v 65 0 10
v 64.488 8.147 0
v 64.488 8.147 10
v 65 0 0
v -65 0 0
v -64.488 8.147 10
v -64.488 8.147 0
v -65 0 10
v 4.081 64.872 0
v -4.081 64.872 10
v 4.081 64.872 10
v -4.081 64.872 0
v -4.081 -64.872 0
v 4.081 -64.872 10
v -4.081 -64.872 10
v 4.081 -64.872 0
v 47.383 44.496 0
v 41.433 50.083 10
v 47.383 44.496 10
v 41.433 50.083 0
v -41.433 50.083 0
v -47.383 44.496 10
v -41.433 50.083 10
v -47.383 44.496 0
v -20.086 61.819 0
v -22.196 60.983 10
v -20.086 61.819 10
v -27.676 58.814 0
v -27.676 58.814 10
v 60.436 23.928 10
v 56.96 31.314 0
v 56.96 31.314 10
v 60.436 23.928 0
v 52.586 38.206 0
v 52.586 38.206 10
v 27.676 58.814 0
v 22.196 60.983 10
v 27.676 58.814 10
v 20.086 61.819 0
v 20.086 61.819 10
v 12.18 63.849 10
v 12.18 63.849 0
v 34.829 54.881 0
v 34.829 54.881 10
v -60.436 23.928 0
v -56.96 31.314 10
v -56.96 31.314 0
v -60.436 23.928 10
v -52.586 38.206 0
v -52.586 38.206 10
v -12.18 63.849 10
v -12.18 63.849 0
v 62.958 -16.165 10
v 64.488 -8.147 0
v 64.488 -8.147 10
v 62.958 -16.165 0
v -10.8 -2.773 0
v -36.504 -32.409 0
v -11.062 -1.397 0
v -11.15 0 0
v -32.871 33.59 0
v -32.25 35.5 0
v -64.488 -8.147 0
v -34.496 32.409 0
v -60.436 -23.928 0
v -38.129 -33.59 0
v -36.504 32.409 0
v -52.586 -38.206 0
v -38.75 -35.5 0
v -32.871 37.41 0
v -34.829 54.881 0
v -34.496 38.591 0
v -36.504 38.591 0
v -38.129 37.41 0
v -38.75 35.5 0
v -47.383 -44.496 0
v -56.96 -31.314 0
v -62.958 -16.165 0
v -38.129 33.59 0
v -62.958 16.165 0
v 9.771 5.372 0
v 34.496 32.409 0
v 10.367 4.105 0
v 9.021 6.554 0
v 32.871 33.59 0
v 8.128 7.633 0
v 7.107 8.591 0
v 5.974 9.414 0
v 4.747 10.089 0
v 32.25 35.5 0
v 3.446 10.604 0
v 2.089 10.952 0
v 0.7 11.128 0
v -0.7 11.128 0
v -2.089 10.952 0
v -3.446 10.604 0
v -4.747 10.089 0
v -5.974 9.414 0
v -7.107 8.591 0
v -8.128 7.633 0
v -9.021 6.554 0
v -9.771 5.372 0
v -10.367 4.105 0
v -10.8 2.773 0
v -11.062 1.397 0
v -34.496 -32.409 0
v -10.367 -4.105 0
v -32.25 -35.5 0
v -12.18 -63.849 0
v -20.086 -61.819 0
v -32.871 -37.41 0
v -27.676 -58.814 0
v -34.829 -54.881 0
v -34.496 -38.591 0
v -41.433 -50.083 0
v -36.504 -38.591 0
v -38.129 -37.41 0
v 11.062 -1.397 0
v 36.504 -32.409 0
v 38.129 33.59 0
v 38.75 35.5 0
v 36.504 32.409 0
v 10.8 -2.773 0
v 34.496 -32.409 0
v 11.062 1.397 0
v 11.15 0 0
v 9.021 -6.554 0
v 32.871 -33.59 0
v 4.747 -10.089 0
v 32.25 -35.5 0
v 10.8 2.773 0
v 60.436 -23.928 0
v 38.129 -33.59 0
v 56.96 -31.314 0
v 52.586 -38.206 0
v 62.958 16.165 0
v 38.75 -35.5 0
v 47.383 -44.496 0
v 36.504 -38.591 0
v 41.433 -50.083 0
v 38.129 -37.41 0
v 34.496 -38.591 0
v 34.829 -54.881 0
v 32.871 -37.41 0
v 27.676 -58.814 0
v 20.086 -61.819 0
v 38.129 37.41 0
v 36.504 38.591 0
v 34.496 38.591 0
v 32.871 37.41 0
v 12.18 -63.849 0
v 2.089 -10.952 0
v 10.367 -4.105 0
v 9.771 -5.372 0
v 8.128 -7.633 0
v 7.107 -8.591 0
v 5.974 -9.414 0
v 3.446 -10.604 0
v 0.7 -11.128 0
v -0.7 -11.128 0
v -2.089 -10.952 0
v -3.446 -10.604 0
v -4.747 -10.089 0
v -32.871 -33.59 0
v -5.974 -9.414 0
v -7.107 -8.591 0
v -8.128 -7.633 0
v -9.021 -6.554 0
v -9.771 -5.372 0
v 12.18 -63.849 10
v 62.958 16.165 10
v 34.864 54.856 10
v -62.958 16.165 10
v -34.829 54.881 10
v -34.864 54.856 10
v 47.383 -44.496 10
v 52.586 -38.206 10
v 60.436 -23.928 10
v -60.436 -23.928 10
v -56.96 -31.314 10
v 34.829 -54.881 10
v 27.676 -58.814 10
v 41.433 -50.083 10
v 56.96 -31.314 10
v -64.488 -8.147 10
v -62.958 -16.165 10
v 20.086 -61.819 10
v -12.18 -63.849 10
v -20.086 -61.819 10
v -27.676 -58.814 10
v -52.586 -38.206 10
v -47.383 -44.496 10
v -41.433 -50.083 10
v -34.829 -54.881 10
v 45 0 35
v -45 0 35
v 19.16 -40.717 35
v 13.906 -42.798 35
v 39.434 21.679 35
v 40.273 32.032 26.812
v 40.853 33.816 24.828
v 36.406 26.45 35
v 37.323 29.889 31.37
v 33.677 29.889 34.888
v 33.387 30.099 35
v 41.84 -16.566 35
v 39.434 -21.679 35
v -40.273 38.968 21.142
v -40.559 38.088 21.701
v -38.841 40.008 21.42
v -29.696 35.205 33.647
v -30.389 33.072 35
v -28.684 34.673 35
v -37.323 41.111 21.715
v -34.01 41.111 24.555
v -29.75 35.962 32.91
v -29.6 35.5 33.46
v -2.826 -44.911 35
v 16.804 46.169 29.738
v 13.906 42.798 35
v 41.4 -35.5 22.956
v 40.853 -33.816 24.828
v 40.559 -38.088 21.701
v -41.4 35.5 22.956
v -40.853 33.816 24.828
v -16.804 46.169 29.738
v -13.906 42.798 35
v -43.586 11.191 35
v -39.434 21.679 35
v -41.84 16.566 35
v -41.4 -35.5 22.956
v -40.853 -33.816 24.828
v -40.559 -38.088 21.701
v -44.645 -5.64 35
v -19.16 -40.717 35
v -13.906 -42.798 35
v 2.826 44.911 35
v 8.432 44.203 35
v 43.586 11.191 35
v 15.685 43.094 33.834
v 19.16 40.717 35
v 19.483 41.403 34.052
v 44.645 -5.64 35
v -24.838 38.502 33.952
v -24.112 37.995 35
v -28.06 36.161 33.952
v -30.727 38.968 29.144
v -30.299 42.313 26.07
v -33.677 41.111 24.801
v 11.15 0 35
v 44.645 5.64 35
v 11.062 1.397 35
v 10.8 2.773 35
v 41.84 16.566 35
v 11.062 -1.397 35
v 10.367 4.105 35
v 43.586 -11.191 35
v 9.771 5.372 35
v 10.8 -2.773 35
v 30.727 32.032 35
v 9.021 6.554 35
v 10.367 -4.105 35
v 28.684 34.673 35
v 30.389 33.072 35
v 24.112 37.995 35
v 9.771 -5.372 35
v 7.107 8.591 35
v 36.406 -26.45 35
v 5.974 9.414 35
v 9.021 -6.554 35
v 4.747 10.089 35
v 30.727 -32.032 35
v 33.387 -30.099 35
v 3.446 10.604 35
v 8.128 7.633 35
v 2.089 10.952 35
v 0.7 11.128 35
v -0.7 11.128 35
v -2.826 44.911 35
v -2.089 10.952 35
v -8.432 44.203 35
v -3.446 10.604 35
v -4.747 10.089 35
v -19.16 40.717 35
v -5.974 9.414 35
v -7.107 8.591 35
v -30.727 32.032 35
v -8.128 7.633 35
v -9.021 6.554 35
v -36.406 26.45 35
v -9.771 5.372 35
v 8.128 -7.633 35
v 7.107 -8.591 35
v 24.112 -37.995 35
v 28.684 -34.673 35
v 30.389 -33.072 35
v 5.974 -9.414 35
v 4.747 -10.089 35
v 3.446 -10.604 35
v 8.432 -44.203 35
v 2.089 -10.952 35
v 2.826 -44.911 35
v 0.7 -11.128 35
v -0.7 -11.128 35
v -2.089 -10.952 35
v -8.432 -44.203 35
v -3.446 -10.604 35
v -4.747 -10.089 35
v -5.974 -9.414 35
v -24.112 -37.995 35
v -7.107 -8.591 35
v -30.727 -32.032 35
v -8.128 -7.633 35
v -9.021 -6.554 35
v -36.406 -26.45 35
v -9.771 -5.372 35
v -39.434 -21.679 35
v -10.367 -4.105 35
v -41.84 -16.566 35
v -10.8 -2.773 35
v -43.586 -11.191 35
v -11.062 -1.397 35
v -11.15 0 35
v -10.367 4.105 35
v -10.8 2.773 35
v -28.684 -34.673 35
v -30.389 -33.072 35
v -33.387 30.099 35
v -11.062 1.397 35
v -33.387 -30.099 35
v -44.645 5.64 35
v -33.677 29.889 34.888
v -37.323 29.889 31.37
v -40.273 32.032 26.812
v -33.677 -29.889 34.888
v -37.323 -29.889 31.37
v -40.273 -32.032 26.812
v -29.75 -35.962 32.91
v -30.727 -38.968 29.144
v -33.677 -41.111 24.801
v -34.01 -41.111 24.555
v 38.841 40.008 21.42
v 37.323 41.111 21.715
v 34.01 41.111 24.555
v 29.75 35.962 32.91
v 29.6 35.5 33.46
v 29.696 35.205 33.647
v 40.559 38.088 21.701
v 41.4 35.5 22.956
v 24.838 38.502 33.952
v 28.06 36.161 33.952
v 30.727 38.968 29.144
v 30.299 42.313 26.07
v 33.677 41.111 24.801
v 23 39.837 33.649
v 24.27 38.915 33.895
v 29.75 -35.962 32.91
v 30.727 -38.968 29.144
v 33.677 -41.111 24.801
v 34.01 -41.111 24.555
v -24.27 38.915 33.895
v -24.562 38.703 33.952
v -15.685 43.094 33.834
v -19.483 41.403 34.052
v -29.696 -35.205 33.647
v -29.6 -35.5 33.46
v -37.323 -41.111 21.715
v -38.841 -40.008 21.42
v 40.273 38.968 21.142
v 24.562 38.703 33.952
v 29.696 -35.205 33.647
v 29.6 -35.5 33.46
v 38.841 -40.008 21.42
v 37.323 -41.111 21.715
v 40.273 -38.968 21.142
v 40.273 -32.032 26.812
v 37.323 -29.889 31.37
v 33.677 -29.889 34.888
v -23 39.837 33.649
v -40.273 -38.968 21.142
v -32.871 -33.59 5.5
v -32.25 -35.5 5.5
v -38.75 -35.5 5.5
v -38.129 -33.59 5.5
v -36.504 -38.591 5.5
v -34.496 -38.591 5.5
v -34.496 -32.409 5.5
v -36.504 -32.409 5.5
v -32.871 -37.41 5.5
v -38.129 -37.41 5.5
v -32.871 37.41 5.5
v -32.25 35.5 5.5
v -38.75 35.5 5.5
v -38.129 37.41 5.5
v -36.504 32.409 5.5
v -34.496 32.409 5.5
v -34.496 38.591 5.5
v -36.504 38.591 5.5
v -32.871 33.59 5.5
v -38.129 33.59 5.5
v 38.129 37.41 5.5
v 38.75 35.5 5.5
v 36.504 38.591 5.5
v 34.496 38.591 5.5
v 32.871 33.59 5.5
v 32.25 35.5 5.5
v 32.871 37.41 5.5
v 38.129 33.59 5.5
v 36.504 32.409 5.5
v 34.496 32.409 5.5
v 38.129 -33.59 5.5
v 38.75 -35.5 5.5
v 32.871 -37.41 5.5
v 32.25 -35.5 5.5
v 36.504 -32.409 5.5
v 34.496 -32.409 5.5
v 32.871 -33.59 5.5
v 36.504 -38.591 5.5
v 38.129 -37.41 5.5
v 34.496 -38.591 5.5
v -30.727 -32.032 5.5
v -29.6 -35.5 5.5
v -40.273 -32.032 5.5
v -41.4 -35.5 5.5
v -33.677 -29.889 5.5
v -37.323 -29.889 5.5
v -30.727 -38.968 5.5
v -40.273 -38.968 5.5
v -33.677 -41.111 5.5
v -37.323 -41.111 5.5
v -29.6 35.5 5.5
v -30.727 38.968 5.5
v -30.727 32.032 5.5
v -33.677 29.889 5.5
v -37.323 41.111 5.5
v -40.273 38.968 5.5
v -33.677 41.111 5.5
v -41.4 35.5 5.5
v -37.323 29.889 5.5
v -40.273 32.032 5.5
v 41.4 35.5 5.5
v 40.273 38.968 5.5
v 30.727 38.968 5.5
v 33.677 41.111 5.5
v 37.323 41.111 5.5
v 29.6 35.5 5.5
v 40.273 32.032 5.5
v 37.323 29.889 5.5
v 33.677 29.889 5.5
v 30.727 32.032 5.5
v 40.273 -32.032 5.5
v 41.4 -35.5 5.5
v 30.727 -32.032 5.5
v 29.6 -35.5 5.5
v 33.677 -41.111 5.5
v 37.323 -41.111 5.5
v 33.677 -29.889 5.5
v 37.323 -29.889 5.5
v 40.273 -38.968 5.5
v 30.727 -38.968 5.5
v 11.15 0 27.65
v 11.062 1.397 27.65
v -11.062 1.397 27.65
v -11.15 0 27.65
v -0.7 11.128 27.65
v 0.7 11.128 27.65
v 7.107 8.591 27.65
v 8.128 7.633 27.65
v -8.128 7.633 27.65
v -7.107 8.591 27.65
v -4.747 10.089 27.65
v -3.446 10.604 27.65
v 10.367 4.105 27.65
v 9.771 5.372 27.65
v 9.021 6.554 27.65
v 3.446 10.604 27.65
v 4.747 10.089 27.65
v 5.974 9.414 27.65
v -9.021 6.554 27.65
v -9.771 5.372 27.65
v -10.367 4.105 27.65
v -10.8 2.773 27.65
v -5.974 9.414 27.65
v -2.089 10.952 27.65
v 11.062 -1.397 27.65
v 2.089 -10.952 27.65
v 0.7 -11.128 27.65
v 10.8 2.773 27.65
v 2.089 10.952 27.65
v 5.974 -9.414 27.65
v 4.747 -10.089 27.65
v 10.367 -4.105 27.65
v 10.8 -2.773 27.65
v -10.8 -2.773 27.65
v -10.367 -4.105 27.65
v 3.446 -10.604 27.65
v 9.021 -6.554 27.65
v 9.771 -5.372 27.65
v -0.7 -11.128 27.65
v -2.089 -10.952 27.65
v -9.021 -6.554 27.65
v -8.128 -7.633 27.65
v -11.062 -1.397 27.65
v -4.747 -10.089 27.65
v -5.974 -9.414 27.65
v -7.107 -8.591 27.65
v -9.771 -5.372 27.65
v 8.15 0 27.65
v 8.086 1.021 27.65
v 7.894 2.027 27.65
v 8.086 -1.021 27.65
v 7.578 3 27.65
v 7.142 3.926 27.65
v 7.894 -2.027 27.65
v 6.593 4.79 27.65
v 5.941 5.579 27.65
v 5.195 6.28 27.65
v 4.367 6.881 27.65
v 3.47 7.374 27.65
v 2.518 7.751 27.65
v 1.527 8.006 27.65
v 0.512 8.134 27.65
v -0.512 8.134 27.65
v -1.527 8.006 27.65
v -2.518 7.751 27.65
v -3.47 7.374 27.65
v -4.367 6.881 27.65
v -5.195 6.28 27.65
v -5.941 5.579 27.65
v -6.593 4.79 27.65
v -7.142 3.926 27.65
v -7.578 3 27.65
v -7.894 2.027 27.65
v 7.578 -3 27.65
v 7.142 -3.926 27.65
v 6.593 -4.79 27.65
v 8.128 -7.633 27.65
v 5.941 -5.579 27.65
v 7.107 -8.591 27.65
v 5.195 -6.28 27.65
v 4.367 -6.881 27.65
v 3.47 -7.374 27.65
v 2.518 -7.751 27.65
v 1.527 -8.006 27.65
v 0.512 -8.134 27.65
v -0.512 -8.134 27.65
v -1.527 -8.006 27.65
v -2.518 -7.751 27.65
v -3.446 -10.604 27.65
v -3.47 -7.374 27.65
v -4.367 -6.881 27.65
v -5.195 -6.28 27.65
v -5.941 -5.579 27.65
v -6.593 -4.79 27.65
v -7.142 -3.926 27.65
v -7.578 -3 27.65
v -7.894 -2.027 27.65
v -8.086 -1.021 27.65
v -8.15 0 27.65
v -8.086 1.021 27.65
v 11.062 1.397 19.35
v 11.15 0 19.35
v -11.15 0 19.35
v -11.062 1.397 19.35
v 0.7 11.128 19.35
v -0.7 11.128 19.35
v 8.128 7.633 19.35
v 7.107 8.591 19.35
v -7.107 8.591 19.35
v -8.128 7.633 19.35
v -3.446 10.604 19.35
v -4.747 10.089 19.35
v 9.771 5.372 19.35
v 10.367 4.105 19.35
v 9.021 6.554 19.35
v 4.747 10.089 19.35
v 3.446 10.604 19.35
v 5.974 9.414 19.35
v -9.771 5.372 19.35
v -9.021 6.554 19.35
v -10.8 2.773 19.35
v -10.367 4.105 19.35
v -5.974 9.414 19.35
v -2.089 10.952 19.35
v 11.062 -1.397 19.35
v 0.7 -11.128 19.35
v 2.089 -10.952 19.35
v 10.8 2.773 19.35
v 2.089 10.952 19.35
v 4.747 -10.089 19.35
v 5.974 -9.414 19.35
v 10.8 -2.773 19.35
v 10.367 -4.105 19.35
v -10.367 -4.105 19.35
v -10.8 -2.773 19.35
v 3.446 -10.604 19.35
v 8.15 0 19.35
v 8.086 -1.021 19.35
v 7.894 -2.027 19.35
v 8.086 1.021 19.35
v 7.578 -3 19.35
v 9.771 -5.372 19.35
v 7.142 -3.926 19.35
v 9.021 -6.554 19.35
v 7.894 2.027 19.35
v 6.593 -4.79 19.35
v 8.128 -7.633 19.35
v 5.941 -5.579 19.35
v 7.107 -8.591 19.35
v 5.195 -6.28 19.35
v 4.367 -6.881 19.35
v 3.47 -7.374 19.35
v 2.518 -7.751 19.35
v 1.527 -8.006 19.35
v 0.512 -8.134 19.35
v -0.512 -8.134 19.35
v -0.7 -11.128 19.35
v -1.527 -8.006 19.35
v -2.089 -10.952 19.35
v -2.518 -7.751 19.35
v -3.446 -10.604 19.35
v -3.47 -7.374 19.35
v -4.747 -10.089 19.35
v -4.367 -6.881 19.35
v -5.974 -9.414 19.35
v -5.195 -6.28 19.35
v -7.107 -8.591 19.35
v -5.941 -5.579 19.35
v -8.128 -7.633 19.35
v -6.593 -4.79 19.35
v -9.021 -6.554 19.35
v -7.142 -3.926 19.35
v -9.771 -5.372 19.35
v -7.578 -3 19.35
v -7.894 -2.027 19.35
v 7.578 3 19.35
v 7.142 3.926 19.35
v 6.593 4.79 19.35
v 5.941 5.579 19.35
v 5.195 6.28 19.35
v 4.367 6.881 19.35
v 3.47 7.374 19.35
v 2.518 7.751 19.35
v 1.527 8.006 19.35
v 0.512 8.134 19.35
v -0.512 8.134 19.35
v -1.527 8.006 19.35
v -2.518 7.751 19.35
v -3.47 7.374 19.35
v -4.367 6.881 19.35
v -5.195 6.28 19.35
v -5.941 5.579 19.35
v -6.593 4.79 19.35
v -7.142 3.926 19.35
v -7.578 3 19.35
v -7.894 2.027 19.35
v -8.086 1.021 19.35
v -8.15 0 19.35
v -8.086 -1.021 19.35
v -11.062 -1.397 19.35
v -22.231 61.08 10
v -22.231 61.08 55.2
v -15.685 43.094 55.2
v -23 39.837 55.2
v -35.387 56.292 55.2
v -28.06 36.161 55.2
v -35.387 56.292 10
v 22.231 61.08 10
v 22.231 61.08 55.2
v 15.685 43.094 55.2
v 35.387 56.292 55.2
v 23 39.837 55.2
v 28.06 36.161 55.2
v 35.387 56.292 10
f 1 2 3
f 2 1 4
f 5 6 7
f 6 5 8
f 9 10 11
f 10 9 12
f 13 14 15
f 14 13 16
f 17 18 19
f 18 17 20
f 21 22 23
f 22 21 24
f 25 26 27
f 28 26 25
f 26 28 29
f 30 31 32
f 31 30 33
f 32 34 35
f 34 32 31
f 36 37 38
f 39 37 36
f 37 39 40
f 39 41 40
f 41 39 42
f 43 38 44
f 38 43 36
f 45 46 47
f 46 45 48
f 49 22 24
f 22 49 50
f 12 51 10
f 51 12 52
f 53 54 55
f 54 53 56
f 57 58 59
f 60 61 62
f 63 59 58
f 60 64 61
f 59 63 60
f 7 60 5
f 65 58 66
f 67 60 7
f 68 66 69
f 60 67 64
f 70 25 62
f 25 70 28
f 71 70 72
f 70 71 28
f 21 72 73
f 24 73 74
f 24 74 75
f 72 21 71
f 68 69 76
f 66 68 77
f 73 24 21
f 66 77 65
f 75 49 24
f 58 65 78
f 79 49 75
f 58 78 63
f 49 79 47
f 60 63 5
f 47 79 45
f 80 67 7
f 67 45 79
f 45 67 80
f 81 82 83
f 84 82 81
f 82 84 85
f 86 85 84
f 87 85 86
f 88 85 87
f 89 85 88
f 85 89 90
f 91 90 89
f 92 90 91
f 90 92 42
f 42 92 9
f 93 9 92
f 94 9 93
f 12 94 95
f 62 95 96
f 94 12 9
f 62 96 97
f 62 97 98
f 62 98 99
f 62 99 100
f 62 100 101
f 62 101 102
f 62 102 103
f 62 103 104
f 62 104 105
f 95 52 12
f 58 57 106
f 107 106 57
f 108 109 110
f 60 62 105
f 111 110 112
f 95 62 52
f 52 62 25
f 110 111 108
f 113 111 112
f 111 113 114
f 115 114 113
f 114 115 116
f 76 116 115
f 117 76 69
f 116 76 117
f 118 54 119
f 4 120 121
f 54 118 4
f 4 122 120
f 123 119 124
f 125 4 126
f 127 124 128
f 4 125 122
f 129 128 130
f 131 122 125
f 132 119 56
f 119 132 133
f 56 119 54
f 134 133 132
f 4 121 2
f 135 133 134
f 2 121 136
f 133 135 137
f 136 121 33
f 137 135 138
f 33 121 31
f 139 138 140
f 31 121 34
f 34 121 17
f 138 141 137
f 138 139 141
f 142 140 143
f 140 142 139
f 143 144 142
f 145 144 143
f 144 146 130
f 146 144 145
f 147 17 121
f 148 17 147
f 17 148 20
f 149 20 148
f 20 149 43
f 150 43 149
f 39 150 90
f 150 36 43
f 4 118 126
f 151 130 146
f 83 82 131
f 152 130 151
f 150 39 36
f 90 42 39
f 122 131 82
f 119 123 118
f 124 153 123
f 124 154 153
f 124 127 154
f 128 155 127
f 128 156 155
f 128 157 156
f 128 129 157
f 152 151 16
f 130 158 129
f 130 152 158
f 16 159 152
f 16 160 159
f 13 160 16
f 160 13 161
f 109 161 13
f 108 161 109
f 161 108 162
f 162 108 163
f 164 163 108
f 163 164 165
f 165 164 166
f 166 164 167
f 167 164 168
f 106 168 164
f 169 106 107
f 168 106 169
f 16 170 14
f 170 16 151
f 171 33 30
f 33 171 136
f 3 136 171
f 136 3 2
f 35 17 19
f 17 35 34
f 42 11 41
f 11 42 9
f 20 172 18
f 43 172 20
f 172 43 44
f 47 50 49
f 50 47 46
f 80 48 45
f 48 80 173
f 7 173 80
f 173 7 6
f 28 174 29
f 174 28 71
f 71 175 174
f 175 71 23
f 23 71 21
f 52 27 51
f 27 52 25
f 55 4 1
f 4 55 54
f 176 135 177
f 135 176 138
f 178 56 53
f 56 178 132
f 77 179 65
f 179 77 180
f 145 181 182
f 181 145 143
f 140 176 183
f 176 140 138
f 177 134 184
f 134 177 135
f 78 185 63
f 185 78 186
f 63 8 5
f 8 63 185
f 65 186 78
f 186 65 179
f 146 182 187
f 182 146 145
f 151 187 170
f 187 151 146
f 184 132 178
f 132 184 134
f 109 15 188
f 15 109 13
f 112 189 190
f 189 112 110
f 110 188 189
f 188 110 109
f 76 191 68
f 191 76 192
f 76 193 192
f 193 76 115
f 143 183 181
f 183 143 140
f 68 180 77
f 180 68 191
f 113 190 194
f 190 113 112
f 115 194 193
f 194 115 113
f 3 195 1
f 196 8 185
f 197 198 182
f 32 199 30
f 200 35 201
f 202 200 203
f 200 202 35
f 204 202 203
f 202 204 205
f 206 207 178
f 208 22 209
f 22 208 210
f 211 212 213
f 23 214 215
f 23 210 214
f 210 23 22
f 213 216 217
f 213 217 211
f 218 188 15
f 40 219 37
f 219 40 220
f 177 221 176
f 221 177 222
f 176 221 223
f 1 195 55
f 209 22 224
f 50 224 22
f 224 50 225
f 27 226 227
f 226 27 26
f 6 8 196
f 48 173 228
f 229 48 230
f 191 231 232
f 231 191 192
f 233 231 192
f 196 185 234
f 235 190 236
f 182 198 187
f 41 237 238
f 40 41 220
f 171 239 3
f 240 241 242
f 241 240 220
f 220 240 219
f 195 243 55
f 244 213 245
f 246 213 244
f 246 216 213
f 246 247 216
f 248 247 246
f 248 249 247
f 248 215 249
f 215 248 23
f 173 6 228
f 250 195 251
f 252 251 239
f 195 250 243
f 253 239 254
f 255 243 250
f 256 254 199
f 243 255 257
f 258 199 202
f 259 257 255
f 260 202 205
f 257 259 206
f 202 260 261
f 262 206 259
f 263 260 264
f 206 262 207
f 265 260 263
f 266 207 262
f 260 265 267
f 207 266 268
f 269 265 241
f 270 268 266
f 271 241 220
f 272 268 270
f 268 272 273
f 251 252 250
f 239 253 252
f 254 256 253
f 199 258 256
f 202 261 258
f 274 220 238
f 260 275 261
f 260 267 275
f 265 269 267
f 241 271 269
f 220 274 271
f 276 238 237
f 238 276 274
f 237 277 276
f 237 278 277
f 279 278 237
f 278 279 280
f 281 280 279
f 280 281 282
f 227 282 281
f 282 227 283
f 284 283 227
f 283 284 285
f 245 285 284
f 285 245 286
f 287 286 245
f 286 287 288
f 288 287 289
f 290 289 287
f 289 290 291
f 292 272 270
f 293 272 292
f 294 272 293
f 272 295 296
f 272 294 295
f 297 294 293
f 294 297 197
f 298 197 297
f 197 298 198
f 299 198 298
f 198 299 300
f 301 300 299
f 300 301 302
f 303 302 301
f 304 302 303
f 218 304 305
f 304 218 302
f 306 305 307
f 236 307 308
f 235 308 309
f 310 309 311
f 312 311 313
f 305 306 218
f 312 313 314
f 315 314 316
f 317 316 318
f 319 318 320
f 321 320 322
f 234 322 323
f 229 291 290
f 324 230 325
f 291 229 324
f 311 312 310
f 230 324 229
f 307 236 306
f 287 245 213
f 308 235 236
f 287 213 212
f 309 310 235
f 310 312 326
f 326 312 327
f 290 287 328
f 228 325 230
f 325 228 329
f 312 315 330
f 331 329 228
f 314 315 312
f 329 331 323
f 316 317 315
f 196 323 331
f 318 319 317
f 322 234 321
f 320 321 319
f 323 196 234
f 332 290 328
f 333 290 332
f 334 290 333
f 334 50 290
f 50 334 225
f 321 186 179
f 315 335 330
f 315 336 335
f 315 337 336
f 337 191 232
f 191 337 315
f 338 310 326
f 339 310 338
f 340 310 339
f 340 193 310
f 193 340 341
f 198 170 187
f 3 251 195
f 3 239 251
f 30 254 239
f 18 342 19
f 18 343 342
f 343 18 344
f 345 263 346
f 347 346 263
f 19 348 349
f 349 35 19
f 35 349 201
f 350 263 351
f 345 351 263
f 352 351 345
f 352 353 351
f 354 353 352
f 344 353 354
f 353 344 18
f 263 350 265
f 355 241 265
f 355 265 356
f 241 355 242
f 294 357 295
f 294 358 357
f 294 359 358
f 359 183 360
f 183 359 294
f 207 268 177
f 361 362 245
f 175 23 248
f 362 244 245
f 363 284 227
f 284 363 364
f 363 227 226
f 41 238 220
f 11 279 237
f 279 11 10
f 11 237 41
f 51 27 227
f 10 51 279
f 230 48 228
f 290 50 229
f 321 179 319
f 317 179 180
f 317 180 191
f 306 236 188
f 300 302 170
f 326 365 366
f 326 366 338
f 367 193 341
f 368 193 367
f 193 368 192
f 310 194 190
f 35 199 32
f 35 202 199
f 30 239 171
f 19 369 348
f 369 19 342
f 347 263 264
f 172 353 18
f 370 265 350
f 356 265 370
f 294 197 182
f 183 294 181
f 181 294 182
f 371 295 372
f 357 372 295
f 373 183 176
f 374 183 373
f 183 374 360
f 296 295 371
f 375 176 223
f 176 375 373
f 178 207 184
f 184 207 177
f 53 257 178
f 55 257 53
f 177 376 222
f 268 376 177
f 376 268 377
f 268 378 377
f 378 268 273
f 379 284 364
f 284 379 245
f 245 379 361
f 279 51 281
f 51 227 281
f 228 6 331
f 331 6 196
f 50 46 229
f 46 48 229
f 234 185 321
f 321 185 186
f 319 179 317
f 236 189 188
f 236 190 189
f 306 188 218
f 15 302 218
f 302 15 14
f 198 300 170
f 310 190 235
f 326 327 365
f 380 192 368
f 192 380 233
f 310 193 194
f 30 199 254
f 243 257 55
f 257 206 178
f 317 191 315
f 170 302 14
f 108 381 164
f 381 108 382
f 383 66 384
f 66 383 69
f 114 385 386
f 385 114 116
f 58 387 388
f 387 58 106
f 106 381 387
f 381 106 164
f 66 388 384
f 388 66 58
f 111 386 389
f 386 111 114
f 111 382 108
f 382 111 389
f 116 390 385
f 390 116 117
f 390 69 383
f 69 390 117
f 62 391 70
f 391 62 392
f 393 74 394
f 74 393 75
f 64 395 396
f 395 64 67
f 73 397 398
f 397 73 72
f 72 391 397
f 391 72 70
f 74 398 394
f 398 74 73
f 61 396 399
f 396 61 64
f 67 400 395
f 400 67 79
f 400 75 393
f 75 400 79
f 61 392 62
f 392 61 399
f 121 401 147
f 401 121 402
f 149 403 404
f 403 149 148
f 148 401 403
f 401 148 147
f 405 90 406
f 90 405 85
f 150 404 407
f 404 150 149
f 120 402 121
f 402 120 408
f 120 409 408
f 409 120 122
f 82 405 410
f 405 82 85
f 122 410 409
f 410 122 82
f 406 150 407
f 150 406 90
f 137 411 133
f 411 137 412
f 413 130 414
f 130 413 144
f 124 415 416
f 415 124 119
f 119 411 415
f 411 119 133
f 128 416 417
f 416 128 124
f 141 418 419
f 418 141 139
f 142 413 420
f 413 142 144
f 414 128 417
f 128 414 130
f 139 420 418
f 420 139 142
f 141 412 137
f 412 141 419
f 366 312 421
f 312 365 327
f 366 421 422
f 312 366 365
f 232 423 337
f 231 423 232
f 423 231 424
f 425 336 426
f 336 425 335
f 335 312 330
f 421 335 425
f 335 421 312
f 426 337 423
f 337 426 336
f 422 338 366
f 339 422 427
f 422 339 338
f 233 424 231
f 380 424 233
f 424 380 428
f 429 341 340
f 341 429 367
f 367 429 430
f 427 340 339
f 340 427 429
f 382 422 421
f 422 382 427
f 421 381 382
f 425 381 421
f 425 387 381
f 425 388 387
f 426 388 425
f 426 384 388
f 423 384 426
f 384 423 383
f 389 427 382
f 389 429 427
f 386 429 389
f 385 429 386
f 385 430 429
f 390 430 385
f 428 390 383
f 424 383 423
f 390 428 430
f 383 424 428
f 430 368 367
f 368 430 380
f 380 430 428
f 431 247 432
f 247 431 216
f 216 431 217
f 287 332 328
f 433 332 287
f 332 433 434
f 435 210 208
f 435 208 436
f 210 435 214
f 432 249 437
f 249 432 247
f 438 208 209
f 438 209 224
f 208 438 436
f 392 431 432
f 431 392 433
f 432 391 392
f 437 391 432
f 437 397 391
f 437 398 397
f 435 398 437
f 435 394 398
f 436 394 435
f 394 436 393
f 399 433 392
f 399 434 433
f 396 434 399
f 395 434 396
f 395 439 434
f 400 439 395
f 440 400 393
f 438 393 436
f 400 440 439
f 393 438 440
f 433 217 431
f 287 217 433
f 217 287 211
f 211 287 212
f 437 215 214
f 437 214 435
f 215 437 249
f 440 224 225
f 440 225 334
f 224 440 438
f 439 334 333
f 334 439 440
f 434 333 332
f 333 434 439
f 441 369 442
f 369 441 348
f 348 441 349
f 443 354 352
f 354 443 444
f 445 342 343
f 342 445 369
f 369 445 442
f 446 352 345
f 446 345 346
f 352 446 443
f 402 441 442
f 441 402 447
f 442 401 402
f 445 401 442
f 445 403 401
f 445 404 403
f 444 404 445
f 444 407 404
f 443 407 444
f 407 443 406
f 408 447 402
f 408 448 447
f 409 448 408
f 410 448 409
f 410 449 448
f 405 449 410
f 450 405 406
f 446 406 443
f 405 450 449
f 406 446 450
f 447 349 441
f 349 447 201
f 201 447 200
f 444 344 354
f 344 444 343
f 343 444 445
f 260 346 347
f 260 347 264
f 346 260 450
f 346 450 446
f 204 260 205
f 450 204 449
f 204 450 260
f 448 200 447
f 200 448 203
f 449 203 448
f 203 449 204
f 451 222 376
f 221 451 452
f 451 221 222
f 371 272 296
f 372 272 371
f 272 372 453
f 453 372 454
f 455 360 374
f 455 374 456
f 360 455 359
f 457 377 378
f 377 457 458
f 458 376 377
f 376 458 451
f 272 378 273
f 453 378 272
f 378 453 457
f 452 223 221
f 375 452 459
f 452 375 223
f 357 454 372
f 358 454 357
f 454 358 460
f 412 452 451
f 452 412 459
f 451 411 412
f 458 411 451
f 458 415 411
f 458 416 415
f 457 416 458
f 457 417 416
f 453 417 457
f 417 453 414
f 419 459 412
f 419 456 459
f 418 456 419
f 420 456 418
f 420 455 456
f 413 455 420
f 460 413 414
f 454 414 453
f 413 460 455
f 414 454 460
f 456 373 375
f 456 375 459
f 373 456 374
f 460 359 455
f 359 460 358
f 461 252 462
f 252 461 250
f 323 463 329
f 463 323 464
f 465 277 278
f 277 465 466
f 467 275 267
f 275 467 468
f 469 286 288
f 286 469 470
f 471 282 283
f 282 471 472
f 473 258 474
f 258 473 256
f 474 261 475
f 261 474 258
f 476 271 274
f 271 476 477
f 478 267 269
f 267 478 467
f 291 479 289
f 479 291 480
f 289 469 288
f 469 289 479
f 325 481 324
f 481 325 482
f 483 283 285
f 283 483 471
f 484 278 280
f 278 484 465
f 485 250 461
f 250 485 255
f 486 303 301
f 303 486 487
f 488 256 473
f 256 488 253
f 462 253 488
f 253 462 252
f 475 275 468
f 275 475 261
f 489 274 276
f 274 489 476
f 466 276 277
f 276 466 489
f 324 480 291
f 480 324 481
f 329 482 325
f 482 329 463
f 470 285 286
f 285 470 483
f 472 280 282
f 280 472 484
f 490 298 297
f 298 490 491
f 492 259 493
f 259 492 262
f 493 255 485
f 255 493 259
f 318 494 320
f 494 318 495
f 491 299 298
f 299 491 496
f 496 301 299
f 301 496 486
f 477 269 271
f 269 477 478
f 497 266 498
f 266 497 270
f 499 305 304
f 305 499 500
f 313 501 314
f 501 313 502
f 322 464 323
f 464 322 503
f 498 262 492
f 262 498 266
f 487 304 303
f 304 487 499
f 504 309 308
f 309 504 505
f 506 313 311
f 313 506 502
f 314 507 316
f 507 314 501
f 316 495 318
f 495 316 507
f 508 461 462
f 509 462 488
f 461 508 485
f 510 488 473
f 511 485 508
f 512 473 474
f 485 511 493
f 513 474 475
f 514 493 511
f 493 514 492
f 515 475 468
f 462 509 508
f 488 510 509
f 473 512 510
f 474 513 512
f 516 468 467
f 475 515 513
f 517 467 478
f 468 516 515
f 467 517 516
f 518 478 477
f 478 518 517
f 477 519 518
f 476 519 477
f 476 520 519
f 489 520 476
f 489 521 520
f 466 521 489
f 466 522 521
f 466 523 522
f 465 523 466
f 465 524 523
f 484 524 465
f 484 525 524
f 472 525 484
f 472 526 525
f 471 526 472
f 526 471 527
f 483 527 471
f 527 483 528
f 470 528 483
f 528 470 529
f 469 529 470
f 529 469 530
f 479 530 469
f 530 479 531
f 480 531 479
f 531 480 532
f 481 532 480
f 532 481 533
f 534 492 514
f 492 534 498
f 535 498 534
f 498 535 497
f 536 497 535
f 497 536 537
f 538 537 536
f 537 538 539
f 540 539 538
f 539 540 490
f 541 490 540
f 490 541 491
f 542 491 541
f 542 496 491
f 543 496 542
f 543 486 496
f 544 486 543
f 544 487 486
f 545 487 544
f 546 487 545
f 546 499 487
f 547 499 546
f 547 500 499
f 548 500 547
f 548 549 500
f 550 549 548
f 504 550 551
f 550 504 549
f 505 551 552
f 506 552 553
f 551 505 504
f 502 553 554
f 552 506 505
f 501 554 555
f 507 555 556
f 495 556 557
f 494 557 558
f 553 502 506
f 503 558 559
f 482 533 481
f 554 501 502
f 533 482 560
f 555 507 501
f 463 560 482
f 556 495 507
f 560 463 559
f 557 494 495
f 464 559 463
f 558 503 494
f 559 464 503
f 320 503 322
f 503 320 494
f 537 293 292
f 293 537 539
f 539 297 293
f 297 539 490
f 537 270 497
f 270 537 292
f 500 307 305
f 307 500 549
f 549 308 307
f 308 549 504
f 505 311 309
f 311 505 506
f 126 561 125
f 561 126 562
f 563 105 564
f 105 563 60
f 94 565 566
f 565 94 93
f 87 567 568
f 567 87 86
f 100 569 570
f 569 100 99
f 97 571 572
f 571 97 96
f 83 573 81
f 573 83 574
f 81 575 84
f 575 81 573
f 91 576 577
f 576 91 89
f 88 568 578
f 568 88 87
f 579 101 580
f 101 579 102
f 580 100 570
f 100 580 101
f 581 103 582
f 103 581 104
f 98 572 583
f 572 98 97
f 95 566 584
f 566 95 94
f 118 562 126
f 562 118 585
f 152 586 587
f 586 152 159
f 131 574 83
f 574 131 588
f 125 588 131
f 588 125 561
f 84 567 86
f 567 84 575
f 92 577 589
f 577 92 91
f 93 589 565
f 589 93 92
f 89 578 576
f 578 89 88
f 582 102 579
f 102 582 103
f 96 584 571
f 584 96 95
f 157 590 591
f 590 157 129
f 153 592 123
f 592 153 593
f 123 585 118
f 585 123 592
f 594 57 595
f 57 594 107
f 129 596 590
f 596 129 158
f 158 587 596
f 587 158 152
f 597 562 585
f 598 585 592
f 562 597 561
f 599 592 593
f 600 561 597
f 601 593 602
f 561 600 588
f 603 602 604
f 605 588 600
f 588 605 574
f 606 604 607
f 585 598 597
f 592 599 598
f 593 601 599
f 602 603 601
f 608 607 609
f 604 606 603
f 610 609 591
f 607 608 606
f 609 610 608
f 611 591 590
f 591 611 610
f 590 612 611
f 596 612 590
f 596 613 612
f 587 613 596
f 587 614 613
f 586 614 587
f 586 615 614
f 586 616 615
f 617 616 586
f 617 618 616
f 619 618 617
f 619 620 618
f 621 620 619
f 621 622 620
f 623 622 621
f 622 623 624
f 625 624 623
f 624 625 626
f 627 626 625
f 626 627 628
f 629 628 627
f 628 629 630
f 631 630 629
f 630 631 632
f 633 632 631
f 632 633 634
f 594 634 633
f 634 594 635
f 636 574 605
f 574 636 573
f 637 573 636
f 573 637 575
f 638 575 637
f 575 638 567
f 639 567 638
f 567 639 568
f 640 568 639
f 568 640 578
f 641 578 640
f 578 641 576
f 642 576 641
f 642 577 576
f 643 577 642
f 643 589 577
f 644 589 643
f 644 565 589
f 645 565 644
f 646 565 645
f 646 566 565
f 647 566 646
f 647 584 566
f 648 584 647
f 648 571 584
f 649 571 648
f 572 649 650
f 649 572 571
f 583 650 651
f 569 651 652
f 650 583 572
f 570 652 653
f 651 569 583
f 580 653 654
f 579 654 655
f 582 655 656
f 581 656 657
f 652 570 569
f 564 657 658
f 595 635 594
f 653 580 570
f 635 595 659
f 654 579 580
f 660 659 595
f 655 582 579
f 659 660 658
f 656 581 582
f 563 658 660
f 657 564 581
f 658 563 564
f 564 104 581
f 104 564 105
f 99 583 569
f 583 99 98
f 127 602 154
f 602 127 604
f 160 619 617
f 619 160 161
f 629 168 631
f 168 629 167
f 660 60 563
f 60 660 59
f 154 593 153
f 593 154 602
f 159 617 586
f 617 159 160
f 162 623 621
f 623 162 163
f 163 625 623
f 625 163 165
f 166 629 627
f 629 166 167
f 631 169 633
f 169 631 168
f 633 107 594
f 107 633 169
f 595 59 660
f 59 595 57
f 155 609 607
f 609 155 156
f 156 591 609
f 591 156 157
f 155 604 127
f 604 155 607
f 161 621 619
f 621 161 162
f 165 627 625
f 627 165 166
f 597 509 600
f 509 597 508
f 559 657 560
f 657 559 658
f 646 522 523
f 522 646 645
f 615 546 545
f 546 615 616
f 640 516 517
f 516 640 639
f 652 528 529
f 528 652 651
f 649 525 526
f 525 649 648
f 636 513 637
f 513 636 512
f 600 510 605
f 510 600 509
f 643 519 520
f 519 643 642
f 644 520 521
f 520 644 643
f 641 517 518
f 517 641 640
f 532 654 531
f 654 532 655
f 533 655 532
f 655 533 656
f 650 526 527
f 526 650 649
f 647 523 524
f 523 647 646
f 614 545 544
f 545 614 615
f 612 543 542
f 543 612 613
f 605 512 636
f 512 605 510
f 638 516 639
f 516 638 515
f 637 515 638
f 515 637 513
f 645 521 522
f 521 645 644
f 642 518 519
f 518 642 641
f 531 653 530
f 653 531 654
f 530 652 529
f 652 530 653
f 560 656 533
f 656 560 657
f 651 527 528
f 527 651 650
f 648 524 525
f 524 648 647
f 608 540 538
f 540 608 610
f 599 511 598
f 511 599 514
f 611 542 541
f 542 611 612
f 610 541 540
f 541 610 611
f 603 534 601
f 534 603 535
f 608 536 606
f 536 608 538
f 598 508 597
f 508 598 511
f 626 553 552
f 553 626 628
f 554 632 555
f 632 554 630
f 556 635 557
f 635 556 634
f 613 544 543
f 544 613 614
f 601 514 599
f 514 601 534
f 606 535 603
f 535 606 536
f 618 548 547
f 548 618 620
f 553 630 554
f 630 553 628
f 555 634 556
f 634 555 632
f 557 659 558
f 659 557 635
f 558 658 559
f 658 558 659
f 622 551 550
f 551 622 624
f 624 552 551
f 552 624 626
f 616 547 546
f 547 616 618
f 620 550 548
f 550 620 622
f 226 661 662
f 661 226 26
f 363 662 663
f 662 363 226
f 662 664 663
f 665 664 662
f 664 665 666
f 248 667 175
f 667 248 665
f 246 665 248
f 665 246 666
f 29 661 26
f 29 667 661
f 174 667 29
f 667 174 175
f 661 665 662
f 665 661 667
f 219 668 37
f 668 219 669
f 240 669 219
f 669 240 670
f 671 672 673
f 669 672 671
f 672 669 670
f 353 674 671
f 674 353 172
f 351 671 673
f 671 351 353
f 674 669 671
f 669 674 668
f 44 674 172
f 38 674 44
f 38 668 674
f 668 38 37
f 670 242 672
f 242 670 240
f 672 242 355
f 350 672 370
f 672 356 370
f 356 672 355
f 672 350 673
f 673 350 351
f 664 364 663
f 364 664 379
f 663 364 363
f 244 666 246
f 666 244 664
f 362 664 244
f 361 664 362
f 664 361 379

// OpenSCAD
// file: lib/naca4.scad
// Naca4.scad - library for parametric airfoils of 4 digit NACA series
// Code: Rudolf Huttary, Berlin 
// June 2015
// commercial use prohibited


// general use: for more examples refer to sampler.scad
// naca = naca digits or 3el vector  (default = 12 or [0, 0, .12])
// L    = chord length [mm]      (default= 100)
// N    = # sample points        (default= 81)
// h    = height [mm]            (default= 1)
// open = close at the thin end? (default = true)
// two equivalent example calls
 airfoil(naca = 2408, L = 60, N=1001, h = 30, open = false); 
// airfoil(naca = [.2, .4, .32], L = 60, N=1001, h = 30, open = false); 

module help()
{
  echo(str("\n\nList of signatures in lib:\n=================\n", 
  "module airfoil(naca=2412, L = 100, N = 81, h = 1, open = false) - renders airfoil object\n", 
  "module airfoil(naca=[.2, .4, .12], L = 100, N = 81, h = 1, open = false) - renders airfoil object using percentage for camber,  camber distance and thicknes\n", 
  "function airfoil_data(naca=12, L = 100, N = 81, open = false)\n",
  "=================\n")); 
}

help(); 
// this is the object
module airfoil(naca=12, L = 100, N = 81, h = 1, open = false)
{
  linear_extrude(height = h)
  polygon(points = airfoil_data(naca, L, N, open)); 
}

module hollow_airfoil(lnaca=12, L = 100, N = 81, h = 1, open = false, wall_thickness = 1)
{
    if (open){
        linear_extrude(height = h)

        if (wall_thickness>0){
            difference(){
                polygon(points = airfoil_data(naca, L, N, false));
                offset(delta = - wall_thickness, chamfer = false) polygon(points = airfoil_data(naca, L, N, open = false));
            }
        }
        else{
            difference(){
                offset(delta = - wall_thickness, chamfer = false) polygon(points = airfoil_data(naca, L, N, open = false));
                polygon(points = airfoil_data(naca, L, N, false));
            }
        }
    }
    else{

        linear_extrude(height = abs(wall_thickness))
            polygon(points = airfoil_data(naca, L, N, false)); 

        linear_extrude(height = h)
            difference(){
                polygon(points = airfoil_data(naca, L, N, open));
                offset(delta = - wall_thickness) polygon(points = airfoil_data(naca, L, N, open = false));
            }

        translate([0,0, h - wall_thickness])
            linear_extrude(height = abs(wall_thickness))
                polygon(points = airfoil_data(naca, L, N, false)); 

    }
}


// this is the main function providing the airfoil data
function airfoil_data(naca=12, L = 100, N = 81, open = false) = 
  let(Na = len(naca)!=3?NACA(naca):naca)
  let(A = [.2969, -0.126, -.3516, .2843, open?-0.1015:-0.1036])
  [for (b=[-180:360/(N):179.99]) 
    let (x = (1-cos(b))/2)  
    let(yt = sign(b)*Na[2]/.2*(A*[sqrt(x), x, x*x, x*x*x, x*x*x*x])) 
    Na[0]==0?L*[x, yt]:L*camber(x, yt, Na[0], Na[1], sign(b))];  


function trailing_edge_angle(naca=12, open = false) = 
  let(Na = len(naca)!=3?NACA(naca):naca)
  let(A = [.2969, -0.126, -.3516, .2843, open?-0.1015:-0.1036])
  let (x =0.999)  // set x near to airfoil trailing edge
  let(yt = Na[2]/.2*(A*[sqrt(x), x, x*x, x*x*x, x*x*x*x])) // calculate distance from x-axis at previously set position
  atan2(yt,1-x);  // calculate angle of triangle between end of airfoil. The triange height corresponds to previously calculated distance from x-axis

function surface_angle(x = 0.5, naca=12, open = false) = 
  let(Na = len(naca)!=3?NACA(naca):naca)
  let(A = [0.2969, -0.126, -0.3516, 0.2843, open?-0.1015:-0.1036])
  let(dy = Na[2]/0.2*(A*[(1/2)*(1/sqrt(x)), 1, 2*x, 3*x*x, 4*x*x*x])) // calculate derivative of airfoil function at the x point
  atan(dy);  // calculate  the angle from function derivative

function surface_distance(x = 0.5, naca=12, open = false) = 
  let(Na = len(naca)!=3?NACA(naca):naca)
  let(A = [0.2969, -0.126, -0.3516, 0.2843, open?-0.1015:-0.1036])
  Na[2]/.2*(A*[sqrt(x), x, x*x, x*x*x, x*x*x*x]); // calculate distance from x-axis at previously set position

// helper functions
function NACA(naca) = 
  let (M = floor(naca/1000))
  let (P = floor((naca-M*1000)/100)) 
  [M/100, P/10, floor(naca-M*1000-P*100)/100];  

function camber(x, y, M, P, upper) = 
  let(yc = (x<P)?M/P/P*(2*P*x-x*x): M/(1-P)/(1-P)*(1 - 2*P + 2*P*x -x*x))
  let(dy = (x<P)?2*M/P/P*(P-x):2*M/(1-P)/(1-P)*(P-x))
  let(th = atan(dy))
  [upper ? x - y*sin(th):x + y*sin(th), upper ? yc + y*cos(th):yc - y*cos(th)];
// main file
draft = true;


module 888_3000(draft){    /////// 1. díl (AZ, YAW)

cone_radius_one = 65;
cone_radius_two = 45;
cone_height = 25;
cylinder_height = 10;

whole_length = cone_height + cylinder_height;

//lícovaný šroub  M6
shank_diameter = 8 + 1 ;		//průměr dříku + tolerance pro díru
screw_length = 30; // délka lícovaného sroubu
whole_screw_length = screw_length + 11+6; 		//celková délka
thread_length = 11;				//délka závitu
thread_diameter = 6; 
length_screw_behind_nut = 3;
head_screw_diameter = 13 + 0.2;		//průměr válcové hlavy šroubu
head_screw_height = 8 + 0.2;		//výška válcové hlavy šroubu


//samojistná šestihranná matice ISO 7040 - M6
lock_nut_diameter = 11.05; //výška samojistné matice pro průměr M6
lock_nut_height = 8; 

//šířka žebra
rib_thickness = 7;

rotate_angle = 40;

//výška podstavy počítaná z celkové délky použitého lícovaného šroubu
height_of_base = whole_screw_length - whole_length + head_screw_height;

base_thickness = 30-18-6; // sila materialu pod srouby pro pridelani

union (){
	difference(){

		union(){
					cylinder (h = cylinder_height, r = cone_radius_one, center = false, $fn = draft ? 50 : 100);
			translate([0,0,cylinder_height])
					cylinder(h = cone_height, r1 = cone_radius_one, r2 = cone_radius_two, center=false, $fn = draft ? 50 : 100);
		}

	//šrouby pro uchycení
		translate([- cone_radius_one/2 - 3, - cone_radius_one/2 - 3,-global_clearance])	
				cylinder (h = whole_length + 2*global_clearance, r = M6_screw_diameter/2, $fn = draft ? 10 : 20);
		translate([ - cone_radius_one/2 - 3, cone_radius_one/2 + 3,-global_clearance])	
				cylinder (h = whole_length + 2*global_clearance, r = M6_screw_diameter/2, $fn = draft ? 10 : 20);
		translate([cone_radius_one/2 + 3,cone_radius_one/2 + 3,-global_clearance])	
				cylinder (h = whole_length + 2*global_clearance, r = M6_screw_diameter/2, $fn = draft ? 10 : 20);
		translate([cone_radius_one/2 + 3, - cone_radius_one/2 - 3,-global_clearance])	
				cylinder (h = whole_length +  2*global_clearance, r = M6_screw_diameter/2, $fn = draft ? 10 : 20);
        
	//šrouby pro uchycení
		translate([- cone_radius_one/2 - 3, - cone_radius_one/2 - 3,base_thickness-global_clearance])	
				cylinder (h = whole_length + 2*global_clearance, r = M6_nut_diameter/2, $fn = draft ? 10 : 20);
		translate([ - cone_radius_one/2 - 3, cone_radius_one/2 + 3, base_thickness-global_clearance])	
				cylinder (h = whole_length + 2*global_clearance, d = M6_nut_diameter, $fn = draft ? 10 : 20);
		translate([cone_radius_one/2 + 3,cone_radius_one/2 + 3, base_thickness-global_clearance])	
				cylinder (h = whole_length + 2*global_clearance, d = M6_nut_diameter, $fn = draft ? 10 : 20);
		translate([cone_radius_one/2 + 3, - cone_radius_one/2 - 3, base_thickness-global_clearance])	
				cylinder (h = whole_length +  2*global_clearance, d = M6_nut_diameter, $fn = draft ? 10 : 20);


	//otvory pro ložiska
		//horní
		translate([0,0, whole_length - 608_bearing_thickness - global_clearance/2])
				cylinder (h = 608_bearing_thickness + global_clearance, r = 608_bearing_outer_diameter/2, $fn = draft ? 50 : 100);
		//spodní
		translate([0,0,- global_clearance/2])
				cylinder (h = 608_bearing_thickness + thread_length + 1+ global_clearance, r = 608_bearing_outer_diameter/2, $fn = draft ? 50 : 100);

	//otvor pro lícovaný šroub
		translate ([0,0,- global_clearance/2])
				cylinder (h = whole_screw_length + global_clearance, d = 608_bearing_outer_diameter-6, $fn = draft ? 50 : 100);


	}

	//sloupky pro rotaci
	difference(){
		union(){
			rotate([0,0,rotate_angle/2])
				translate([-rib_thickness*2,0,cylinder_height])
					cube([rib_thickness*2, cone_radius_one, whole_length + height_of_base - cylinder_height]);
			rotate([0,0,-rotate_angle/2])
				translate([0,0,cylinder_height])
					cube([rib_thickness*2, cone_radius_one, whole_length + height_of_base - cylinder_height]);
		}

	//otvory pro ložiska
		//horní
		translate([0,0, whole_length - 608_bearing_thickness - global_clearance])
				cylinder (h = 608_bearing_thickness + global_clearance, d = 608_bearing_outer_diameter, $fn = draft ? 50 : 100);

	//otvor pro lícovaný šroub
		translate ([0,0,- global_clearance/2])
				cylinder (h = whole_screw_length + global_clearance, d = 608_bearing_outer_diameter-6, $fn = draft ? 50 : 100);
	//odstranění zbylých částí
				cylinder (h = whole_length + cylinder_height + global_clearance + height_of_base, r = cone_radius_two+1);
	
//výběžek a otvor pro šroub M6 - z dílu 888_3001

	translate([-cone_radius_two/4 - coupling_wall_thickness/2,cone_radius_two - coupling_wall_thickness/2,whole_length])	
			translate([cone_radius_two/4 + coupling_wall_thickness/2, cone_radius_two/4 + coupling_wall_thickness - M6_screw_diameter/2,- global_clearance/2])
				translate([-whole_length,0, height_of_base/2])
					rotate([0,90,0])
						union(){
									//cylinder (h = whole_screw_length*2, r= M6_screw_diameter/2, $fn = draft ? 50 :100);
						
					//kapsa pro matku
							translate([0,0,whole_screw_length/2 - rib_thickness/3])
								rotate([0,0,90])
									union(){
												//cylinder(h = M6_nut_height, r = M6_nut_diameter/2, $fn = 6);
										//translate([-M6_nut_diameter/2 - global_clearance/2,0,0])
												//cube([M6_nut_diameter + global_clearance, 20, M6_nut_height]);
									}
						}
	}		

}

}


888_3000(draft);

use <./lib/naca4.scad>
include <../Parameters.scad>
